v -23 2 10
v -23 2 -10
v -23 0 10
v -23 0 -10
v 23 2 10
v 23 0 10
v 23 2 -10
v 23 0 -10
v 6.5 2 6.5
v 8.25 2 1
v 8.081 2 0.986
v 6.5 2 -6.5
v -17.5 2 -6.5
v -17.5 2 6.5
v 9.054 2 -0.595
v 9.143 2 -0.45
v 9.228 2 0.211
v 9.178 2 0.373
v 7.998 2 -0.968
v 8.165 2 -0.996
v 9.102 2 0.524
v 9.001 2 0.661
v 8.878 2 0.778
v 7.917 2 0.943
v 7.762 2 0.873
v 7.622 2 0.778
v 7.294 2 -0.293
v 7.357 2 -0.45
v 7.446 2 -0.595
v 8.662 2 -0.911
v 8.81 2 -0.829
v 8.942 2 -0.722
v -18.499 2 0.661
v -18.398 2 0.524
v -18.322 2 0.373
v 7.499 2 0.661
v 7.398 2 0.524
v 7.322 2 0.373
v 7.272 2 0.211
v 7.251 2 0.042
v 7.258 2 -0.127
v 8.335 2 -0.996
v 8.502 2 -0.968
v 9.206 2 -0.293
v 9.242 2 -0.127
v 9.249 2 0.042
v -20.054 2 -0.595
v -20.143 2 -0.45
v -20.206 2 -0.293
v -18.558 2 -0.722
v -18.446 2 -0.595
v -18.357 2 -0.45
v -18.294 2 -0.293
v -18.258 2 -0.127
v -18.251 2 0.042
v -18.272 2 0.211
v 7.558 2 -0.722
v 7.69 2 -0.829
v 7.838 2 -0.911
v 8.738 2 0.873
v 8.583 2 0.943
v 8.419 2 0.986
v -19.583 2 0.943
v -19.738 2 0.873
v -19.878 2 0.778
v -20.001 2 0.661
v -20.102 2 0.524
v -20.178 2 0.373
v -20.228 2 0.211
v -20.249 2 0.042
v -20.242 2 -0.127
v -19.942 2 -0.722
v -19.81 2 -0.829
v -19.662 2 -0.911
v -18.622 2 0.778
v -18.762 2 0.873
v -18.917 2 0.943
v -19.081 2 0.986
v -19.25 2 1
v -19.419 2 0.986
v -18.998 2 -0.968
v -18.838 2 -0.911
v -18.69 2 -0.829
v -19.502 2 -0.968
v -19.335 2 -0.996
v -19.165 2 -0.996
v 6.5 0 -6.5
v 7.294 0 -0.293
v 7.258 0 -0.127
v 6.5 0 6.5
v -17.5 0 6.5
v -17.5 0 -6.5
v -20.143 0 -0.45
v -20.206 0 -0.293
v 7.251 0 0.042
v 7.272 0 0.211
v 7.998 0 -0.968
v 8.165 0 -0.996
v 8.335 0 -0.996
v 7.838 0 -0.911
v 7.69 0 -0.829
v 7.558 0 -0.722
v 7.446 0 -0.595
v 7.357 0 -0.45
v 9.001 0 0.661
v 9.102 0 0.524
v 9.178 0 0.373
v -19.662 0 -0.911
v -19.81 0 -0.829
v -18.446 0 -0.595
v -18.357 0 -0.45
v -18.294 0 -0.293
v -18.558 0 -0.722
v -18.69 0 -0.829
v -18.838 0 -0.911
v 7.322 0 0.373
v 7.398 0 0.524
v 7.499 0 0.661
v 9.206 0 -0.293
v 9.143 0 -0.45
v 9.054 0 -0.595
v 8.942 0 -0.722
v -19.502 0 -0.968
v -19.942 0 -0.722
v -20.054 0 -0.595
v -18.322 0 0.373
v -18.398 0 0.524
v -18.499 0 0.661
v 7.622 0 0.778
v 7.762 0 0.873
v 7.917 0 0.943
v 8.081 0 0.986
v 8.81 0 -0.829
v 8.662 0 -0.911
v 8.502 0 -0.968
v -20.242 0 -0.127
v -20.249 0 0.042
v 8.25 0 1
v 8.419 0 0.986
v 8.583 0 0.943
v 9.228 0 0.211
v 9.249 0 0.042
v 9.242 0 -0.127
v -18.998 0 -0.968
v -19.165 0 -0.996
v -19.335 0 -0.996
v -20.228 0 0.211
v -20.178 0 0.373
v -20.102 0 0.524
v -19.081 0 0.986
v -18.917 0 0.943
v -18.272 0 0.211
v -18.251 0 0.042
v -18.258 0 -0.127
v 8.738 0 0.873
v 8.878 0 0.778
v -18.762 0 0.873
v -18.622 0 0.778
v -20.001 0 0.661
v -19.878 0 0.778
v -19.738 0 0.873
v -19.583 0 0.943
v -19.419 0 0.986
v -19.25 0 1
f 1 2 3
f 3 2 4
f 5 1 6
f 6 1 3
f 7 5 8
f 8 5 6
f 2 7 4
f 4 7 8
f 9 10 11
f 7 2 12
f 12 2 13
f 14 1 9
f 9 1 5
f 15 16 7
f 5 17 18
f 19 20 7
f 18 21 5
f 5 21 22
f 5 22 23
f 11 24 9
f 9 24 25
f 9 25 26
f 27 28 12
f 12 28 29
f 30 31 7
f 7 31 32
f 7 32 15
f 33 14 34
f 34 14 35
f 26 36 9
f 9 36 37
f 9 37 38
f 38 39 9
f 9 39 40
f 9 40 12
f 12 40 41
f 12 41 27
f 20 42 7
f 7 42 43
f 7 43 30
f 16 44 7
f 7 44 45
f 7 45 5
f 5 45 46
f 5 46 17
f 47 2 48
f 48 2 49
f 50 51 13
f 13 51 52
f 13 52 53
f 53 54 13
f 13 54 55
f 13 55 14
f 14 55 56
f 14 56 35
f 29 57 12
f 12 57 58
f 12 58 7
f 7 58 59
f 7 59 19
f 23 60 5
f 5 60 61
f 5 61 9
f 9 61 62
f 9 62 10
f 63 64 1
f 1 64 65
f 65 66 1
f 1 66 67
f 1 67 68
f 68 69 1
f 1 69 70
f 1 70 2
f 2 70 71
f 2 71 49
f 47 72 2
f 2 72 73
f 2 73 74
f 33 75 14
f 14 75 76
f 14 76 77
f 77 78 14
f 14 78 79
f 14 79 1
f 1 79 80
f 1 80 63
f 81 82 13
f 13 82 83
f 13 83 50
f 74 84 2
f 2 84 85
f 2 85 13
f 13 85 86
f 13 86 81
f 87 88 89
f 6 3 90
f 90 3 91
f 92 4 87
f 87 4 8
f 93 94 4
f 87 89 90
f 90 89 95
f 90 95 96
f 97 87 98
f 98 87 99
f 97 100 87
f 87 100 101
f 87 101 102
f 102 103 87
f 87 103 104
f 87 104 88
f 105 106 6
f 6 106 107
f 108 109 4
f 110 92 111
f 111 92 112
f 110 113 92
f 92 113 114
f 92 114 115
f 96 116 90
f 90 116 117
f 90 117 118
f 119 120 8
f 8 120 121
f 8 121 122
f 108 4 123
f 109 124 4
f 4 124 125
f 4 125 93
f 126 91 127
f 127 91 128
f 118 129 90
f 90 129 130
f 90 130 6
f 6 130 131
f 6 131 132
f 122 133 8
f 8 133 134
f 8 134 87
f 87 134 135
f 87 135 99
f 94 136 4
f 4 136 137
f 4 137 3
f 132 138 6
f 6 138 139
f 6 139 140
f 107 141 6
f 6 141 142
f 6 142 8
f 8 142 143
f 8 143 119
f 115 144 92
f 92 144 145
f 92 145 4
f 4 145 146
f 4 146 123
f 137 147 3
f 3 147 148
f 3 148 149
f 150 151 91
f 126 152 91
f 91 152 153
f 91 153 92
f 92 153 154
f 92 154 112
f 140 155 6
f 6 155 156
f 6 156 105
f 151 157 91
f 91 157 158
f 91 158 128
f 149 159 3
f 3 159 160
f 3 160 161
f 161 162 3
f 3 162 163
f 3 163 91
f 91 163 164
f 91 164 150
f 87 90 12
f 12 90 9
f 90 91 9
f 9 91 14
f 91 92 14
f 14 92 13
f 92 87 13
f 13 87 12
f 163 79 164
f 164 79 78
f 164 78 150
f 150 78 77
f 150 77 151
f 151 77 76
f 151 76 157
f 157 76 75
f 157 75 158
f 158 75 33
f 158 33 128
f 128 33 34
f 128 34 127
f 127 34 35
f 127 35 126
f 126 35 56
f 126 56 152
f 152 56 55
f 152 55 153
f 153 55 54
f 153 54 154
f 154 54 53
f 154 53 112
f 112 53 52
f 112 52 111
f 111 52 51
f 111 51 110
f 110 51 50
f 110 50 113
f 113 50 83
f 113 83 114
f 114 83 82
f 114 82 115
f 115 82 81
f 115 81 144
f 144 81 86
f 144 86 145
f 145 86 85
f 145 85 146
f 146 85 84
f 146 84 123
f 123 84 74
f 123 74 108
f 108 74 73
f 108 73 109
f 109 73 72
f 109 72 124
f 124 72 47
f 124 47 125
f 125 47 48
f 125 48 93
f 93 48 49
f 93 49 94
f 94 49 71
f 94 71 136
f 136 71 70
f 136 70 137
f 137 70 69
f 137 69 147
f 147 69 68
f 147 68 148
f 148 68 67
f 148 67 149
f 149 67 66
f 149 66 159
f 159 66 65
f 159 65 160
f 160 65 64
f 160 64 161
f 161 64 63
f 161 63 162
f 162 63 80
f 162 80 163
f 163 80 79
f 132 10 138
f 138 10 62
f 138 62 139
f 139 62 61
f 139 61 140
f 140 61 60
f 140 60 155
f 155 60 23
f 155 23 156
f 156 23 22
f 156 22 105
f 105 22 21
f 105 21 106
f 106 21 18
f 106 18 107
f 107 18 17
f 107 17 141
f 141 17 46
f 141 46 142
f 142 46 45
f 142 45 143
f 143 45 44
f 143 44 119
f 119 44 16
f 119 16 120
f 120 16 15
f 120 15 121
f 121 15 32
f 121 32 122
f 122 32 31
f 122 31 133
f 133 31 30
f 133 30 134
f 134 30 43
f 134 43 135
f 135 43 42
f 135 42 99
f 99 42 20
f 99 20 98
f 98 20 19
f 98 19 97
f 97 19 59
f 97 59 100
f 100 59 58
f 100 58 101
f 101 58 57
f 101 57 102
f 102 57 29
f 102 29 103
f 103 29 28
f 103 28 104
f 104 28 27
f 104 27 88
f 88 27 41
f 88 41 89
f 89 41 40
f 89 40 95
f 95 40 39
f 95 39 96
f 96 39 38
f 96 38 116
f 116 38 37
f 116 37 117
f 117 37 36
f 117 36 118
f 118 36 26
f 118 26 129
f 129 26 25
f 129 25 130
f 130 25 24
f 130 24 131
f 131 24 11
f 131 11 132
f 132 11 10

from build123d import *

# Parameters (mm, degrees)
SKICA1_W                 = 46
SKICA1_H                 = 20
P_IDAT_VYSUNUT_M1_DEPTH  = 2
SKICA2_W                 = 24
SKICA2_H                 = 13
ODEBRAT_VYSUNUT_M1_DEPTH = 2
SKICA3_R                 = 1
ODEBRAT_VYSUNUT_M2_DEPTH = 2


with BuildPart() as part:
    # Skica1 → Přidat vysunutím1 (new body)
    with BuildSketch(Plane(origin=(0, 0, 0), x_dir=(1, 0, 0), z_dir=(0, 1, 0))):
        Rectangle(SKICA1_W, SKICA1_H)
    extrude(amount=P_IDAT_VYSUNUT_M1_DEPTH)

    # Skica2 → Odebrat vysunutím1 (cut)
    with BuildSketch(Plane(origin=(0, 2, 0), x_dir=(1, 0, 0), z_dir=(0, 1, 0))):
        with Locations((-5.5, 0)):
            Rectangle(SKICA2_W, SKICA2_H)
    extrude(amount=-ODEBRAT_VYSUNUT_M1_DEPTH, mode=Mode.SUBTRACT)

    # Skica3 → Odebrat vysunutím2 (cut)
    with BuildSketch(Plane(origin=(0, 2, 0), x_dir=(1, 0, 0), z_dir=(0, 1, 0))):
        with Locations((-19.25, 0)):
            Circle(SKICA3_R)
        with Locations((8.25, 0)):
            Circle(SKICA3_R)
    extrude(amount=-ODEBRAT_VYSUNUT_M2_DEPTH, mode=Mode.SUBTRACT)


solid = part.part
